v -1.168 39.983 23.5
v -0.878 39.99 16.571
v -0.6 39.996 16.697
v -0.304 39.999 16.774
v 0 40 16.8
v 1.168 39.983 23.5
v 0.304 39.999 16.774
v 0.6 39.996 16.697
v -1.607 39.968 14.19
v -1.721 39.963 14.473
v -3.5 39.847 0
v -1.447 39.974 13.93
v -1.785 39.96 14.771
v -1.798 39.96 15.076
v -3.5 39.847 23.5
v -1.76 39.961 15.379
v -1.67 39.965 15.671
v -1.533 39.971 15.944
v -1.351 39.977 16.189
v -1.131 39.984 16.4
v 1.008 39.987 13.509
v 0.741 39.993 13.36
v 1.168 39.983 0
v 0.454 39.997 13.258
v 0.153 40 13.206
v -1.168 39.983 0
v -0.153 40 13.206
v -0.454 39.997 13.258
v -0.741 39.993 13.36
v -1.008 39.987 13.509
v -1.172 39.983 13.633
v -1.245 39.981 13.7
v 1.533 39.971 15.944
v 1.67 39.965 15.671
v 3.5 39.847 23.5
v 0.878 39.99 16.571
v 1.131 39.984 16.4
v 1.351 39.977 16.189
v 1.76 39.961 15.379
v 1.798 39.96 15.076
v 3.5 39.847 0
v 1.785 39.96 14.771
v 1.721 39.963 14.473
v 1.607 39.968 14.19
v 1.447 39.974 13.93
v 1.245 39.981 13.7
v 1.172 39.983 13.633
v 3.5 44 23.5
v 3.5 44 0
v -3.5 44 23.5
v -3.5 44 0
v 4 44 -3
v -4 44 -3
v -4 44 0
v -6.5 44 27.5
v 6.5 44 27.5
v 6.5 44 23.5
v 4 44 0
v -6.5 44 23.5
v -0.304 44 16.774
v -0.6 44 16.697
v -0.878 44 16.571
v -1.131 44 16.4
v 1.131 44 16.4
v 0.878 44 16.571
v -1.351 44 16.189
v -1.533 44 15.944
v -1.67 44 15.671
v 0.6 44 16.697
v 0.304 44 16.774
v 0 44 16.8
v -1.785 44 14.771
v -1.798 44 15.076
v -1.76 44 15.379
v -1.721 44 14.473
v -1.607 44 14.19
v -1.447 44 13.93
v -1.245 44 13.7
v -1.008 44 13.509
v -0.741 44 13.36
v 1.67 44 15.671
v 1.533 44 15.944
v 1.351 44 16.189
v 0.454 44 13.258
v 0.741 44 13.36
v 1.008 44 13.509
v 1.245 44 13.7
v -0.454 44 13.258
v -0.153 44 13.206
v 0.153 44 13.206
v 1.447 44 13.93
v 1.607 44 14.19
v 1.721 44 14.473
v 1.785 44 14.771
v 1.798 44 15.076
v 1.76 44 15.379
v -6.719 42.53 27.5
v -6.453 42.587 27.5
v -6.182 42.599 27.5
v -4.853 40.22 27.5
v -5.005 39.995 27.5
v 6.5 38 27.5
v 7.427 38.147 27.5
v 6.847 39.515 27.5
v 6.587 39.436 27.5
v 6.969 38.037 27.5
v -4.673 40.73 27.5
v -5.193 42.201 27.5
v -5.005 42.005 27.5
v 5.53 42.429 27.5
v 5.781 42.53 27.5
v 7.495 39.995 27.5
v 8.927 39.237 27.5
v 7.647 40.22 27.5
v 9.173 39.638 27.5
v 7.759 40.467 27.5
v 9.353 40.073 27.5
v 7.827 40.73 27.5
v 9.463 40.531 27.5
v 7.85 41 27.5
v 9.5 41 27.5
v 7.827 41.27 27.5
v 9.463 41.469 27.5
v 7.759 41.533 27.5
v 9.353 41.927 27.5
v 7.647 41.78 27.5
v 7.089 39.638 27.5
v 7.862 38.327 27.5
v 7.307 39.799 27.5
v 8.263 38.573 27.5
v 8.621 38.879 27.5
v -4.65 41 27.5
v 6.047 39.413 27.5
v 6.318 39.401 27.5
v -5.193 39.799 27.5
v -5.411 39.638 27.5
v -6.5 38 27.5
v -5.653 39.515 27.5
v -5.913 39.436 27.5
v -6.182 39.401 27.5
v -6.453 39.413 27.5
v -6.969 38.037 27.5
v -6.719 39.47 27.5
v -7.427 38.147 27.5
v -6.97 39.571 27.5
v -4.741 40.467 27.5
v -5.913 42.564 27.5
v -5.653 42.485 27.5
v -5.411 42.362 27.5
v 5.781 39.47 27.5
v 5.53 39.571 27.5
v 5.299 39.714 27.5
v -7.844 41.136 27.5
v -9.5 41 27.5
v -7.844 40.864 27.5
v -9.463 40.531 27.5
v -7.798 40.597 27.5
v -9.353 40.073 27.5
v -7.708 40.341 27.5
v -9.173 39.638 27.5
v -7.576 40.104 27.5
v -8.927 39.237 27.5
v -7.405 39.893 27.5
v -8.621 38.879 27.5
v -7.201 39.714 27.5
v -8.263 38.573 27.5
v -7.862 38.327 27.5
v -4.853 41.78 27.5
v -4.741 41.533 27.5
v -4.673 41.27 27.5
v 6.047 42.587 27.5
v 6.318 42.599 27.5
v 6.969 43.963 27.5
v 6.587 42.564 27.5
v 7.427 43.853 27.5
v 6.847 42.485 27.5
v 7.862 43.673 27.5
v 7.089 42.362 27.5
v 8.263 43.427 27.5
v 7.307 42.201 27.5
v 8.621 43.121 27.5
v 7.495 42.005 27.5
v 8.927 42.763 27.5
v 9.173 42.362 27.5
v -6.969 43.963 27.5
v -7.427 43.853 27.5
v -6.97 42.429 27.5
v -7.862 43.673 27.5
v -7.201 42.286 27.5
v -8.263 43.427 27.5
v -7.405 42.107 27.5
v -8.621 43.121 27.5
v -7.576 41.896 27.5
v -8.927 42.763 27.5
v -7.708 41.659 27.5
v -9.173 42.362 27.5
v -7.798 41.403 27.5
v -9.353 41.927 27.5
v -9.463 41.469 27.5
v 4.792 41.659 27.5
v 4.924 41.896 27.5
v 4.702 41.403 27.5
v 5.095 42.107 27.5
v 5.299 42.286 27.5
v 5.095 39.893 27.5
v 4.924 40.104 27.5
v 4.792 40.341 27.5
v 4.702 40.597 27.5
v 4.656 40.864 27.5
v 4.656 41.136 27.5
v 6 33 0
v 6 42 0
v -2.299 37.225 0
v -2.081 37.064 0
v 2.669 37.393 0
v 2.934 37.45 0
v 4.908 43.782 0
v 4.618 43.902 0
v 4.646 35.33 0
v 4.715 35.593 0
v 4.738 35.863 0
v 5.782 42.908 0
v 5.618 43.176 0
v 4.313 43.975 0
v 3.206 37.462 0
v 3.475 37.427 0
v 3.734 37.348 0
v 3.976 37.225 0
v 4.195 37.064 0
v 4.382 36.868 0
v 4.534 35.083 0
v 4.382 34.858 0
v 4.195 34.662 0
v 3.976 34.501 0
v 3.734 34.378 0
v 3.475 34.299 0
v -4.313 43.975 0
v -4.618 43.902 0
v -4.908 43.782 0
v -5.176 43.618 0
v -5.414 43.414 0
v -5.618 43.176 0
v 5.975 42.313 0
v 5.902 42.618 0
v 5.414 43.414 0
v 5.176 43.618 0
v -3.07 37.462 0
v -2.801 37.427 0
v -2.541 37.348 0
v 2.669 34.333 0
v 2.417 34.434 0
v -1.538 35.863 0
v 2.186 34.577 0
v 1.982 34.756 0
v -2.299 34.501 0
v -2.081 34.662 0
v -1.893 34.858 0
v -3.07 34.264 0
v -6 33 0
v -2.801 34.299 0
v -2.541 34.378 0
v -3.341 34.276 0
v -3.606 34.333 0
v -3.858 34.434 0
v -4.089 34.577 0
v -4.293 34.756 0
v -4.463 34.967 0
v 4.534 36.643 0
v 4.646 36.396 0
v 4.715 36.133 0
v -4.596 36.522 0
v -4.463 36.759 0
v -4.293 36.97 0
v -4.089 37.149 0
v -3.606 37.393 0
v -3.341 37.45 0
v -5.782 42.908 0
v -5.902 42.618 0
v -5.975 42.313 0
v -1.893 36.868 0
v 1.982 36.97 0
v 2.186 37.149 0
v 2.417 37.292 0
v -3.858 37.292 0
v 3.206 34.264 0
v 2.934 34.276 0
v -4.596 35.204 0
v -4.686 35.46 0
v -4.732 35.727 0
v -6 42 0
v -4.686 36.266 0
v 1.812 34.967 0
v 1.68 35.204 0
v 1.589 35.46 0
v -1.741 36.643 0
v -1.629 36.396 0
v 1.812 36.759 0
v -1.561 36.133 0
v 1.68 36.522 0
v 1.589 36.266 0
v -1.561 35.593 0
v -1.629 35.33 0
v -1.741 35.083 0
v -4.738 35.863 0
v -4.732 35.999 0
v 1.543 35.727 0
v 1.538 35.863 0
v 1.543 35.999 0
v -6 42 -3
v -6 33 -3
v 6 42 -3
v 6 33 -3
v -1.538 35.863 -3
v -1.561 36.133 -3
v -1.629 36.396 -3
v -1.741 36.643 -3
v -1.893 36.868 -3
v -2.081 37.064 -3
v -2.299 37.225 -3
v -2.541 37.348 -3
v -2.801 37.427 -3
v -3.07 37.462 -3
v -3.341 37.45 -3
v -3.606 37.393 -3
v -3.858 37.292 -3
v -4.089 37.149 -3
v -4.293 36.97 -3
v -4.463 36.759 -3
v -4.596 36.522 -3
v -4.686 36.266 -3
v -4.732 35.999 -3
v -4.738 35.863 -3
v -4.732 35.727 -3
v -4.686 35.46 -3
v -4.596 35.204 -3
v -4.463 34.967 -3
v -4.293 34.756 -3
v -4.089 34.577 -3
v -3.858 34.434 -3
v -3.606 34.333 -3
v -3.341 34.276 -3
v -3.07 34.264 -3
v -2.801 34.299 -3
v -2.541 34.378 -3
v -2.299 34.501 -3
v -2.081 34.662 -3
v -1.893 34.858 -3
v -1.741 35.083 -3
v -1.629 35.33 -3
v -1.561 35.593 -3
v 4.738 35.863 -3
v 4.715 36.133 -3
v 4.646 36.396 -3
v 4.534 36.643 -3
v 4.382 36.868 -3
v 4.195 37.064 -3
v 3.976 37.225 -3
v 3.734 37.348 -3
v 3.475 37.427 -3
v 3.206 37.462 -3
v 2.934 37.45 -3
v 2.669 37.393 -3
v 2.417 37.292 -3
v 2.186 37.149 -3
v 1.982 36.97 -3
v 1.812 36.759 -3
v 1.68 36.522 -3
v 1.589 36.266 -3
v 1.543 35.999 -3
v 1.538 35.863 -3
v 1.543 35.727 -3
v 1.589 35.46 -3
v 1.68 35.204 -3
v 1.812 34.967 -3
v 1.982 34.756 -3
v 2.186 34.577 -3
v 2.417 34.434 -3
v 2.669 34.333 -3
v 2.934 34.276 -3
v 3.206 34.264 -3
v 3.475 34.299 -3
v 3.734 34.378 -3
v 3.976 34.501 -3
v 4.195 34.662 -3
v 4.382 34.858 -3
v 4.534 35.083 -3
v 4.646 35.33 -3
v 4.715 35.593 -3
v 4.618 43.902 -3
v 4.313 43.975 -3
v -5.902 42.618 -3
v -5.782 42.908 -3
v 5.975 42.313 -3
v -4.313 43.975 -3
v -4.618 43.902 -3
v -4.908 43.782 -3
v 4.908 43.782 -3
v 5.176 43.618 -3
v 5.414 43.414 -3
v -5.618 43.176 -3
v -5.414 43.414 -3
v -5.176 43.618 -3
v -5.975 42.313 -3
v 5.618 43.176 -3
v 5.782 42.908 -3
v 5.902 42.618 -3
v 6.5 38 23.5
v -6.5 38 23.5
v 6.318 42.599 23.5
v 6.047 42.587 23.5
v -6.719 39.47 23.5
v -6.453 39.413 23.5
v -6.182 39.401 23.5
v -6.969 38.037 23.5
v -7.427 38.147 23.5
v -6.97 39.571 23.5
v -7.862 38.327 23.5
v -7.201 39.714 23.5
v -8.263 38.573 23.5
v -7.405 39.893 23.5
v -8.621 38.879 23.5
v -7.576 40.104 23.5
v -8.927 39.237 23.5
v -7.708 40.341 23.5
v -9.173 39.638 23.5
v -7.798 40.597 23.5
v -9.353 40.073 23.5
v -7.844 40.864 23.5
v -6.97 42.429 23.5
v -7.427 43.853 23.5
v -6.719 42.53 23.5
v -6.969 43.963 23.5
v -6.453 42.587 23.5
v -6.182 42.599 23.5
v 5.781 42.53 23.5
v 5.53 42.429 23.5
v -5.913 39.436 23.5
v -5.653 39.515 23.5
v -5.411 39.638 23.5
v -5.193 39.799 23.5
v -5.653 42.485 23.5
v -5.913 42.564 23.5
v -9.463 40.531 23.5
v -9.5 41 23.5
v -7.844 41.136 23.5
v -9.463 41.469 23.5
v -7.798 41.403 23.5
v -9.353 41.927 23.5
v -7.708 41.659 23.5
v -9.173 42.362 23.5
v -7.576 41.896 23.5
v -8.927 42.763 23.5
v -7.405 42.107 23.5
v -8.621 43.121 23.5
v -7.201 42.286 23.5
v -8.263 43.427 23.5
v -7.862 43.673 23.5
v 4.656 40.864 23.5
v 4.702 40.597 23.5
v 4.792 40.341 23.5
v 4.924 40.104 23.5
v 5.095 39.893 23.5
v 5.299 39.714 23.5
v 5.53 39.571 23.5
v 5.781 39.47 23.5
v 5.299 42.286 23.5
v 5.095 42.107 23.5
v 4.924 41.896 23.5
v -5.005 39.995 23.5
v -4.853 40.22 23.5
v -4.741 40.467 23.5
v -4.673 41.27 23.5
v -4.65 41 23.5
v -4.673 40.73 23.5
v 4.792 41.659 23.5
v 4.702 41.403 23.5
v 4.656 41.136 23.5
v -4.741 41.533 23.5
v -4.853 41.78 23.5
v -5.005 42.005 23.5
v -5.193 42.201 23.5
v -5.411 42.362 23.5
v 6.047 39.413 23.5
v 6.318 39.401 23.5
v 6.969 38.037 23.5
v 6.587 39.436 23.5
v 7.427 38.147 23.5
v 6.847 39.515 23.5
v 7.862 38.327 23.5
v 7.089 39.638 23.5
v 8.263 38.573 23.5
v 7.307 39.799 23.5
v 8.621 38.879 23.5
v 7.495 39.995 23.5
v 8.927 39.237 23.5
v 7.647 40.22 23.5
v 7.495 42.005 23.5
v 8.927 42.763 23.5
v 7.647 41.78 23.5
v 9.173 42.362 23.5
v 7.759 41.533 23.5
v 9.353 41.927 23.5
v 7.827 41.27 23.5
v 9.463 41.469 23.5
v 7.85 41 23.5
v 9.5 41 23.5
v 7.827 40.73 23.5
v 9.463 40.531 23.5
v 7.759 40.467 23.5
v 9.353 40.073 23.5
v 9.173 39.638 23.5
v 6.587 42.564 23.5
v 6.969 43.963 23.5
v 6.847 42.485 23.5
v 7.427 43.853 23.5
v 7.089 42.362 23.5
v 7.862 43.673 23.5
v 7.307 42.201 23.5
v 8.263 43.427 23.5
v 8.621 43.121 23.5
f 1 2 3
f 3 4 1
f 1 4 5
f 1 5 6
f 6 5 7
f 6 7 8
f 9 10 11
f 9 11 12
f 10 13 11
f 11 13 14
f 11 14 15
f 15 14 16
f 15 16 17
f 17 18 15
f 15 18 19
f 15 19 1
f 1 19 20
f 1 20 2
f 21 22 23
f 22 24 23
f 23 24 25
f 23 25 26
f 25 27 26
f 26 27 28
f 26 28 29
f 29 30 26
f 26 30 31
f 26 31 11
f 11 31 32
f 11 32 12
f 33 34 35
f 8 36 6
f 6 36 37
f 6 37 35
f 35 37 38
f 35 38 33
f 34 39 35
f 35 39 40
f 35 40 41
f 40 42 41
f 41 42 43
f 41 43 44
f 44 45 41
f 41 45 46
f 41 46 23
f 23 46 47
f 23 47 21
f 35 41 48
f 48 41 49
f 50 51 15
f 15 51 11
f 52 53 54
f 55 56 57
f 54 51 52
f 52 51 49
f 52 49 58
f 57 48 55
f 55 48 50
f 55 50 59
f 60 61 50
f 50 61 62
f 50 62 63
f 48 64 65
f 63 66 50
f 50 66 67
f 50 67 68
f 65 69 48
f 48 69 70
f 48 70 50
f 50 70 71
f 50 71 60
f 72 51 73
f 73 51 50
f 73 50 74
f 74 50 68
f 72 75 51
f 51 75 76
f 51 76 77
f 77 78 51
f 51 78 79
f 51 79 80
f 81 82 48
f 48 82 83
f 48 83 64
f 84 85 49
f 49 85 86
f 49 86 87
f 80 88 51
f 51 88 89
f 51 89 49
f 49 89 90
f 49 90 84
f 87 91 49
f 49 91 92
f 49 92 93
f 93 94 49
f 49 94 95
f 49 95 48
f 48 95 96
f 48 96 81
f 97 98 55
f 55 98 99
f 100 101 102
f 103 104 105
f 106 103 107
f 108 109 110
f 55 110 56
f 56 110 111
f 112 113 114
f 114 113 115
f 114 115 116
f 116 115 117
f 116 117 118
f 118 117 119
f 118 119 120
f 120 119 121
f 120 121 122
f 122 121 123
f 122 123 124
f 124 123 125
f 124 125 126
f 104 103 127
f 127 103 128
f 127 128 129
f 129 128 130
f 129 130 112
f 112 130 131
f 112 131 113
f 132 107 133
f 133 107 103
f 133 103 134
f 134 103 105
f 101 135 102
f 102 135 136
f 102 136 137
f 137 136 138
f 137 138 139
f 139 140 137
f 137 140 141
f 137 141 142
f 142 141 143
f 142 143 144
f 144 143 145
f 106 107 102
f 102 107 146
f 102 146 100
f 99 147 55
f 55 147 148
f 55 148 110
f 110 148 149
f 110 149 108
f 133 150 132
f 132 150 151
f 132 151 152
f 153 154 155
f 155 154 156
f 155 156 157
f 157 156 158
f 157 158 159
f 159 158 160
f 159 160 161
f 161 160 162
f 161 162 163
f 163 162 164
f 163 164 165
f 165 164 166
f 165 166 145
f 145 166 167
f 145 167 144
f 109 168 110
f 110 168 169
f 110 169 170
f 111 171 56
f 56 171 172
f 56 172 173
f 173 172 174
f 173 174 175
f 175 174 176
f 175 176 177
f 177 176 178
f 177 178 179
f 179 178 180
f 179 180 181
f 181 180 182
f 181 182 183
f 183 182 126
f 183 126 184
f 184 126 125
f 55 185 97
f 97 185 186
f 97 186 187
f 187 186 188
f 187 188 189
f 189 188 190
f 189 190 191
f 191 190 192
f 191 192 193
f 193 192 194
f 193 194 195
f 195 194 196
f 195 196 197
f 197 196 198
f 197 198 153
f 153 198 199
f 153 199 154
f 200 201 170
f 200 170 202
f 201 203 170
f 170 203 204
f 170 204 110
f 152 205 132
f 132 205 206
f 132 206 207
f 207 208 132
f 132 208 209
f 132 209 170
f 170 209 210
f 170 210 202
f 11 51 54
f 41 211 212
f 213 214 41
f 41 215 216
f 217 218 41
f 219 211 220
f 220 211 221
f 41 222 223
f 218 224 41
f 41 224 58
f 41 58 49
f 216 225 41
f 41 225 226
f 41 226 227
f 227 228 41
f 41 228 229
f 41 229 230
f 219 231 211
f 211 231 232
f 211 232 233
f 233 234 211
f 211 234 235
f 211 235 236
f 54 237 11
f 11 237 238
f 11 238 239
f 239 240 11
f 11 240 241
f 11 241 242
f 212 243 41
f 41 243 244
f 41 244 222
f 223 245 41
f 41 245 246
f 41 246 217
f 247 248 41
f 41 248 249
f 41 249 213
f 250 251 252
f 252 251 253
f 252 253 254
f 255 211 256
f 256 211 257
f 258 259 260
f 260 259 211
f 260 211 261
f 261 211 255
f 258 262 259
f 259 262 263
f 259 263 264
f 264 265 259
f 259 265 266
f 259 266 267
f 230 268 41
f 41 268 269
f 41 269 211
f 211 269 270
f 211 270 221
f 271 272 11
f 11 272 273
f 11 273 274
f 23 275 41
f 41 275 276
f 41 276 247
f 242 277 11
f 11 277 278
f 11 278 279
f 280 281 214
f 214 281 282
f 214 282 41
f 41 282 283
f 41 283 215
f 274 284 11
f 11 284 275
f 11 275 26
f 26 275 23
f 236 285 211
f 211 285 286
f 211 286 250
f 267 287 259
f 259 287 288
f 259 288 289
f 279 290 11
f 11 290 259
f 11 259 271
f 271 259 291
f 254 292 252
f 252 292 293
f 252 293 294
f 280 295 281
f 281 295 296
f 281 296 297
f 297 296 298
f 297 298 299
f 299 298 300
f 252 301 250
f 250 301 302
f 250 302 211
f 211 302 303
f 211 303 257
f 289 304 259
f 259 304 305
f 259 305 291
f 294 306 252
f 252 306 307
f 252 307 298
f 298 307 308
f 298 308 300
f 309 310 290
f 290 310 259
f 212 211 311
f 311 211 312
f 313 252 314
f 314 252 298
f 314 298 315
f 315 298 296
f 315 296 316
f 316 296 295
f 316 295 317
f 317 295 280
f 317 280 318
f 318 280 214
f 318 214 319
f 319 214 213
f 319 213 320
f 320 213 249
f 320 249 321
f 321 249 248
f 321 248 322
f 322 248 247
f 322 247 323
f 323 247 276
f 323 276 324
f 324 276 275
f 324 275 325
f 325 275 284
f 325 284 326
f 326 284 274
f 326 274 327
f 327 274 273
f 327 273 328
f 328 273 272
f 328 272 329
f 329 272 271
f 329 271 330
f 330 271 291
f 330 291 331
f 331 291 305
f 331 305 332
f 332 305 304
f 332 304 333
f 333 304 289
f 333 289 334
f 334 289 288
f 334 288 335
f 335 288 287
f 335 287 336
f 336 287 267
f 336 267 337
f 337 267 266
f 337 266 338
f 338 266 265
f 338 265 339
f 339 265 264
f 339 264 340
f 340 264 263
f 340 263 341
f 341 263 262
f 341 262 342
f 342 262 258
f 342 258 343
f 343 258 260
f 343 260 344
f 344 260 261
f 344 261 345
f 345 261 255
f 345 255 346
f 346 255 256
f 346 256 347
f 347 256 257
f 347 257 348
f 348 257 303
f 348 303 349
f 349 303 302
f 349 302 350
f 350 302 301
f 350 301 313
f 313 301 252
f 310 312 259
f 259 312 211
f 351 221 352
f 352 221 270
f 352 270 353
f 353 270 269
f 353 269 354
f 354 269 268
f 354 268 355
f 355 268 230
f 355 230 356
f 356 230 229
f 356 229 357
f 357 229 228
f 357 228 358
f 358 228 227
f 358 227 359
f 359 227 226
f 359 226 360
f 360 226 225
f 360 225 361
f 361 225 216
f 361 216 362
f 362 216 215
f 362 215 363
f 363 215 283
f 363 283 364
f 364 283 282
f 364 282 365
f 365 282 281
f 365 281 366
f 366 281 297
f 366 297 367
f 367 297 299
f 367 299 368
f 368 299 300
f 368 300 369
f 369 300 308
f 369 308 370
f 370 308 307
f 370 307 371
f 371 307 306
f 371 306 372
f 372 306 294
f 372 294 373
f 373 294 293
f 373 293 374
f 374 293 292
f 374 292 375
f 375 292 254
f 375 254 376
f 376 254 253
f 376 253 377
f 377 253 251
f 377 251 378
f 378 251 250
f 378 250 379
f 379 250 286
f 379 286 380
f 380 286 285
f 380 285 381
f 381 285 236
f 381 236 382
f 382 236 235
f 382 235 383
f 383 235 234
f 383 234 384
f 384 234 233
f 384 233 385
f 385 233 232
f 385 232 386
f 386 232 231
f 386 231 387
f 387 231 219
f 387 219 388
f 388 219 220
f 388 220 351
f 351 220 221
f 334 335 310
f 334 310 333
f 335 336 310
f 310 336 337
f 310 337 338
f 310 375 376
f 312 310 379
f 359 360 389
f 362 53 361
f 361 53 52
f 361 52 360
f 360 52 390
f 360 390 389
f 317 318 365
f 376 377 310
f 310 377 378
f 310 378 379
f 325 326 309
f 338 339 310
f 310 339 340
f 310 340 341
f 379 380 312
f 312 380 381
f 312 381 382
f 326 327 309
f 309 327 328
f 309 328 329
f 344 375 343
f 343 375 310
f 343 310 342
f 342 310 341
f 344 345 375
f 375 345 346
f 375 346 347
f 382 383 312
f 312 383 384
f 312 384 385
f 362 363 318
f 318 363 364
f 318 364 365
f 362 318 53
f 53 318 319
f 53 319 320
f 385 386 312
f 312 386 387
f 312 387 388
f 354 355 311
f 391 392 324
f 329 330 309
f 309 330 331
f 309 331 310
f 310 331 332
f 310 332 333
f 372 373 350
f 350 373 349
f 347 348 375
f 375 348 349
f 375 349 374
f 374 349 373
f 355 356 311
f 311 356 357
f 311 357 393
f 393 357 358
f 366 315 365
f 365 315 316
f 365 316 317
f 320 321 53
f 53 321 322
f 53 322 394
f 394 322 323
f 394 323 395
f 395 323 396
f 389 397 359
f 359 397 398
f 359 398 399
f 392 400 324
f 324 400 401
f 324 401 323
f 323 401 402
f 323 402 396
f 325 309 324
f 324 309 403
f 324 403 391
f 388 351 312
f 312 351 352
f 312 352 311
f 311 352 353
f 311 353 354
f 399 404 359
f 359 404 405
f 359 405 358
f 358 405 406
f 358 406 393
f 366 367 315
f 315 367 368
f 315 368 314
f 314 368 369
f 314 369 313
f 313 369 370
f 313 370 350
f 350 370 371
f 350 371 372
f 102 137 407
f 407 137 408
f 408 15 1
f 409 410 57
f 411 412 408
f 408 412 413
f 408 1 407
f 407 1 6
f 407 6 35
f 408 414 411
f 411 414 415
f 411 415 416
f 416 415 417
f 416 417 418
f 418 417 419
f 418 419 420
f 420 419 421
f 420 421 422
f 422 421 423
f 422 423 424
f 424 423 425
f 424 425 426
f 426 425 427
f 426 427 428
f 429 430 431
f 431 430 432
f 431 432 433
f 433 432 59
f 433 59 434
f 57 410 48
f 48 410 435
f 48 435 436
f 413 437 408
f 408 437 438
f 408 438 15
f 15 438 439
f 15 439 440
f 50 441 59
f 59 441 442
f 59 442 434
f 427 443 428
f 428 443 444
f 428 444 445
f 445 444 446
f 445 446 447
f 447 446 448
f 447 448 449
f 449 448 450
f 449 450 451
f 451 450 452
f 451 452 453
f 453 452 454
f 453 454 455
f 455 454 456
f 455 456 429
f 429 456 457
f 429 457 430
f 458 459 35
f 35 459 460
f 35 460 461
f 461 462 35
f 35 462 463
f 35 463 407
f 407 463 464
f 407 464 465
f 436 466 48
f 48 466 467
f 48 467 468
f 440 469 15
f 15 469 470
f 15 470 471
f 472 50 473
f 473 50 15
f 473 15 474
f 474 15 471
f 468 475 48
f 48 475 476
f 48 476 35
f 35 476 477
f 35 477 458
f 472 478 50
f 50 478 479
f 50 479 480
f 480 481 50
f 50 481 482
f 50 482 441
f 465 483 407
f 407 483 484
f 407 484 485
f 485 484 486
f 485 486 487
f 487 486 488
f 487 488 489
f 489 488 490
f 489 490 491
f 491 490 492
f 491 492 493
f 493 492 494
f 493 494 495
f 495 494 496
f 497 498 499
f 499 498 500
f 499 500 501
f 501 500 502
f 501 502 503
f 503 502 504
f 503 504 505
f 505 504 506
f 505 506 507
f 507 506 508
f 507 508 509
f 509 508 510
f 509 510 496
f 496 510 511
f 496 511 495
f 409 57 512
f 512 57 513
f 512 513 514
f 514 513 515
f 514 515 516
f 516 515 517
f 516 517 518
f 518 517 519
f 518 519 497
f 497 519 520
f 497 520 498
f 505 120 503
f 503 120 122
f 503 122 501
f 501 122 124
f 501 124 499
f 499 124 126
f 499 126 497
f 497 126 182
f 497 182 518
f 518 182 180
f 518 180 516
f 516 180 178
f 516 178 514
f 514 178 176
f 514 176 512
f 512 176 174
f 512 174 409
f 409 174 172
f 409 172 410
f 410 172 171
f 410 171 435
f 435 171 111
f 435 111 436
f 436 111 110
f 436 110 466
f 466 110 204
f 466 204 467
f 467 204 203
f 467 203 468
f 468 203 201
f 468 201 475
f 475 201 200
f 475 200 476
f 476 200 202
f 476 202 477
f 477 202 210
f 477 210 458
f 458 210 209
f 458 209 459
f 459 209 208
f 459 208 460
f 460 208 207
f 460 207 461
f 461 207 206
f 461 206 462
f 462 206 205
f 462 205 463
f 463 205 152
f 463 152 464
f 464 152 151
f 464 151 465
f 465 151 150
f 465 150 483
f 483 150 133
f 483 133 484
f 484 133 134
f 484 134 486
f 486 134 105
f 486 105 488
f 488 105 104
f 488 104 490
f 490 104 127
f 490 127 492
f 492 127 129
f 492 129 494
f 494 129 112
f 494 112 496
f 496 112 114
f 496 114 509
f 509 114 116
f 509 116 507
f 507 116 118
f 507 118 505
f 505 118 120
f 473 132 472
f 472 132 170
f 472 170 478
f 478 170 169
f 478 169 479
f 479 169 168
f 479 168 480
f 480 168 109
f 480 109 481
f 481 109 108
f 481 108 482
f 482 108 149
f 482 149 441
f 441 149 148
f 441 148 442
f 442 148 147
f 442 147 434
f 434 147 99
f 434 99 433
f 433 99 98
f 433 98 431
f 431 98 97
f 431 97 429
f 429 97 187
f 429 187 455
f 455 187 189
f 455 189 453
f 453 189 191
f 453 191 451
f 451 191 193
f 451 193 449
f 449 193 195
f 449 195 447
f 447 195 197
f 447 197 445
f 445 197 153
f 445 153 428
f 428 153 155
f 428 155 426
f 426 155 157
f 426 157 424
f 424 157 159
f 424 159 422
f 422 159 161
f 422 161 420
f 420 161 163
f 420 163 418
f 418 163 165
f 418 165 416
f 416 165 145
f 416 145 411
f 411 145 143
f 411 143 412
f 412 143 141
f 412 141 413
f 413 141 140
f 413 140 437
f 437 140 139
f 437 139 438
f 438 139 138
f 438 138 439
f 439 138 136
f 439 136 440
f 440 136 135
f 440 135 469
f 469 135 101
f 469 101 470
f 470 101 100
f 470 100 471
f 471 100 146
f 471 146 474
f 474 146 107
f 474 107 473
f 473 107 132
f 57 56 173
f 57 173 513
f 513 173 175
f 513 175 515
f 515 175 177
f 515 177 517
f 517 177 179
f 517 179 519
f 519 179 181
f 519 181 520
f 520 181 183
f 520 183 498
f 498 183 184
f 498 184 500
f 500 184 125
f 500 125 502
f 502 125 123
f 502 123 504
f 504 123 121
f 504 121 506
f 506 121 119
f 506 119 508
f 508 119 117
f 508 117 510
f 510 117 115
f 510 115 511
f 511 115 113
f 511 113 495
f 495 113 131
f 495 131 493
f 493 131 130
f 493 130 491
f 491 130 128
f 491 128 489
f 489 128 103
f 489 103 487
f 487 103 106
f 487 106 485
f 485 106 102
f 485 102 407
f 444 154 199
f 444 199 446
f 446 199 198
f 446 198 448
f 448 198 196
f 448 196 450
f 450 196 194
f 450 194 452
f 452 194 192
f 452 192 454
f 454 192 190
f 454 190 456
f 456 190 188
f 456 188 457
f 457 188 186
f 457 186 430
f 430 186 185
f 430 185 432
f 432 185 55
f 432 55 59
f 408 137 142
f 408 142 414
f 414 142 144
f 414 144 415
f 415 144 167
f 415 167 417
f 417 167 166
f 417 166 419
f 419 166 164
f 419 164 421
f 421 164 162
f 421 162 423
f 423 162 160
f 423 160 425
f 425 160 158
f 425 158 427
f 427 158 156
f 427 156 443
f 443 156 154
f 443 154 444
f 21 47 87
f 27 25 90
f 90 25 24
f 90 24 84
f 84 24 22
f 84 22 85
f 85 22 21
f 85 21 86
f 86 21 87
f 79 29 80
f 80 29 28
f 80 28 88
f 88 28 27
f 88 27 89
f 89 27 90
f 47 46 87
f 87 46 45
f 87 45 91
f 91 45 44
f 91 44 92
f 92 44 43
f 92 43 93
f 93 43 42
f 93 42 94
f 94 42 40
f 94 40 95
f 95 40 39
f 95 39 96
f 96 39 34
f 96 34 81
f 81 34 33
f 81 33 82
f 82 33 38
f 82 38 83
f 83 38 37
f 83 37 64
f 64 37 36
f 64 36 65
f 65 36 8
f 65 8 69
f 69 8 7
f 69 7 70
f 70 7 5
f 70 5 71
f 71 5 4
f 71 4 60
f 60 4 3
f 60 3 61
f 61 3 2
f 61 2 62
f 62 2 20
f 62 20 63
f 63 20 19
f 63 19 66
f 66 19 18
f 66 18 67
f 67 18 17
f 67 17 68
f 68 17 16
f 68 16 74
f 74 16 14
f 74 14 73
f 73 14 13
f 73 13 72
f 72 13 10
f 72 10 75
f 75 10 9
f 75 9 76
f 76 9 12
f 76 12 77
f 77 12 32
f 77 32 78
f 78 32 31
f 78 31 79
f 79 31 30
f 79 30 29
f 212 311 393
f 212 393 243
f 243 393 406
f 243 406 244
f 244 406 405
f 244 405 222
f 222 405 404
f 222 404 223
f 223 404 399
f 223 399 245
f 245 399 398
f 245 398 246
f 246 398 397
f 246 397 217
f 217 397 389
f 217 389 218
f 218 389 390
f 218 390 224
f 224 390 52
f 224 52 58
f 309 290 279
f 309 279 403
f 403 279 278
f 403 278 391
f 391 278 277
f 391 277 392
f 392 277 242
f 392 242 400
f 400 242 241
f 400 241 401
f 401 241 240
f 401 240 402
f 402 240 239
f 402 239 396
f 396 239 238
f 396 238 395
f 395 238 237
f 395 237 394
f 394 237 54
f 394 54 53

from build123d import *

# Parameters (mm, degrees)
BOSS_EXTRUDE1_DEPTH      = 27.5
BOSS_EXTRUDE2_START      = 3
BOSS_EXTRUDE2_DEPTH      = 3
SKETCH3_W                = 19
SKETCH3_H                = 6
BOSS_EXTRUDE3_DEPTH      = 4
M3_CLEARANCE_HOLE1_D     = 3.2
M3_CLEARANCE_HOLE1_DEPTH = 4
FILLET1_R                = 3
M3_CLEARANCE_HOLE2_D     = 3.6
FILLET2_R                = 2


with BuildPart() as part:
    # Sketch1 → Boss-Extrude1 (new body)
    with BuildSketch(Plane.XY):
        with BuildLine():
            Line((-3.5, 44), (-3.5, 39.846580782))
            ThreePointArc((-3.5, 39.846580782), (0, 40), (3.5, 39.846580782))
            Line((3.5, 39.846580782), (3.5, 44))
            Line((3.5, 44), (-3.5, 44))
        make_face()
    extrude(amount=BOSS_EXTRUDE1_DEPTH)

    # Sketch2 → Boss-Extrude2 (add)
    with BuildSketch(Plane(origin=(0, 0, 0), x_dir=(-1, 0, 0), z_dir=(0, 0, -1)).offset(BOSS_EXTRUDE2_START)):
        with BuildLine():
            ThreePointArc((-4.728025778, 35.688174123), (-5.364869156, 35.598008075), (-6, 35.496478699))
            Line((-6, 35.496478699), (-6, 33))
            Line((-6, 33), (6, 33))
            Line((6, 33), (6, 35.496478699))
            ThreePointArc((6, 35.496478699), (5.364869156, 35.598008075), (4.728025778, 35.688174123))
            ThreePointArc((4.728025778, 35.688174123), (2.998157551, 34.269097614), (1.540989958, 35.967003628))
            ThreePointArc((1.540989958, 35.967003628), (0, 36), (-1.540989958, 35.967003628))
            ThreePointArc((-1.540989958, 35.967003628), (-1.538452767, 35.915033888), (-1.537606739, 35.863009131))
            ThreePointArc((-1.537606739, 35.863009131), (-3.050058074, 34.265406167), (-4.728025778, 35.688174123))
        make_face()
        with BuildLine():
            Line((-3.5, 44), (-6, 44))
            Line((-6, 44), (-6, 35.496478699))
            ThreePointArc((-6, 35.496478699), (-5.364869156, 35.598008075), (-4.728025778, 35.688174123))
            ThreePointArc((-4.728025778, 35.688174123), (-3.277055927, 37.456920648), (-1.540989958, 35.967003628))
            ThreePointArc((-1.540989958, 35.967003628), (0, 36), (1.540989958, 35.967003628))
            ThreePointArc((1.540989958, 35.967003628), (3.189631496, 37.462163103), (4.737606739, 35.863009131))
            ThreePointArc((4.737606739, 35.863009131), (4.735209703, 35.775460466), (4.728025778, 35.688174123))
            ThreePointArc((4.728025778, 35.688174123), (5.364869156, 35.598008075), (6, 35.496478699))
            Line((6, 35.496478699), (6, 44))
            Line((6, 44), (3.5, 44))
            Line((3.5, 44), (3.5, 39.846580782))
            ThreePointArc((3.5, 39.846580782), (0, 40), (-3.5, 39.846580782))
            Line((-3.5, 39.846580782), (-3.5, 44))
        make_face()
        with BuildLine():
            Line((-3.5, 44), (-3.5, 39.846580782))
            ThreePointArc((-3.5, 39.846580782), (0, 40), (3.5, 39.846580782))
            Line((3.5, 39.846580782), (3.5, 44))
            Line((3.5, 44), (-3.5, 44))
        make_face()
    extrude(amount=-BOSS_EXTRUDE2_DEPTH)

    # Sketch3 → Boss-Extrude3 (add)
    with BuildSketch(Plane.XY.offset(27.5)):
        with Locations((0, 41)):
            Rectangle(SKETCH3_W, SKETCH3_H)
    extrude(amount=-BOSS_EXTRUDE3_DEPTH)

    # M3 Clearance Hole1
    with Locations(Plane.XY.offset(27.5)):
        with Locations((-6.25, 41), (6.25, 41)):
            Hole(M3_CLEARANCE_HOLE1_D / 2, depth=M3_CLEARANCE_HOLE1_DEPTH)

    # Fillet1
    fillet1_edges = [part.edges().sort_by_distance(p)[0] for p in [
        (9.5, 38, 25.5),
        (9.5, 44, 25.5),
        (-9.5, 38, 25.5),
        (-9.5, 44, 25.5),
    ]]
    fillet(fillet1_edges, radius=FILLET1_R - 0.0001)  # a hair under: the kernel refuses the full size

    # M3 Clearance Hole2 (through all)
    with Locations(Plane(origin=(0, 44, 0), x_dir=(1, 0, 0), z_dir=(0, 1, 0))):
        with Locations((0, -15)):
            Hole(M3_CLEARANCE_HOLE2_D / 2)

    # Fillet2
    fillet2_edges = [part.edges().sort_by_distance(p)[0] for p in [
        (-6, 44, -1.5),
        (6, 44, -1.5),
    ]]
    fillet(fillet2_edges, radius=FILLET2_R)


solid = part.part
